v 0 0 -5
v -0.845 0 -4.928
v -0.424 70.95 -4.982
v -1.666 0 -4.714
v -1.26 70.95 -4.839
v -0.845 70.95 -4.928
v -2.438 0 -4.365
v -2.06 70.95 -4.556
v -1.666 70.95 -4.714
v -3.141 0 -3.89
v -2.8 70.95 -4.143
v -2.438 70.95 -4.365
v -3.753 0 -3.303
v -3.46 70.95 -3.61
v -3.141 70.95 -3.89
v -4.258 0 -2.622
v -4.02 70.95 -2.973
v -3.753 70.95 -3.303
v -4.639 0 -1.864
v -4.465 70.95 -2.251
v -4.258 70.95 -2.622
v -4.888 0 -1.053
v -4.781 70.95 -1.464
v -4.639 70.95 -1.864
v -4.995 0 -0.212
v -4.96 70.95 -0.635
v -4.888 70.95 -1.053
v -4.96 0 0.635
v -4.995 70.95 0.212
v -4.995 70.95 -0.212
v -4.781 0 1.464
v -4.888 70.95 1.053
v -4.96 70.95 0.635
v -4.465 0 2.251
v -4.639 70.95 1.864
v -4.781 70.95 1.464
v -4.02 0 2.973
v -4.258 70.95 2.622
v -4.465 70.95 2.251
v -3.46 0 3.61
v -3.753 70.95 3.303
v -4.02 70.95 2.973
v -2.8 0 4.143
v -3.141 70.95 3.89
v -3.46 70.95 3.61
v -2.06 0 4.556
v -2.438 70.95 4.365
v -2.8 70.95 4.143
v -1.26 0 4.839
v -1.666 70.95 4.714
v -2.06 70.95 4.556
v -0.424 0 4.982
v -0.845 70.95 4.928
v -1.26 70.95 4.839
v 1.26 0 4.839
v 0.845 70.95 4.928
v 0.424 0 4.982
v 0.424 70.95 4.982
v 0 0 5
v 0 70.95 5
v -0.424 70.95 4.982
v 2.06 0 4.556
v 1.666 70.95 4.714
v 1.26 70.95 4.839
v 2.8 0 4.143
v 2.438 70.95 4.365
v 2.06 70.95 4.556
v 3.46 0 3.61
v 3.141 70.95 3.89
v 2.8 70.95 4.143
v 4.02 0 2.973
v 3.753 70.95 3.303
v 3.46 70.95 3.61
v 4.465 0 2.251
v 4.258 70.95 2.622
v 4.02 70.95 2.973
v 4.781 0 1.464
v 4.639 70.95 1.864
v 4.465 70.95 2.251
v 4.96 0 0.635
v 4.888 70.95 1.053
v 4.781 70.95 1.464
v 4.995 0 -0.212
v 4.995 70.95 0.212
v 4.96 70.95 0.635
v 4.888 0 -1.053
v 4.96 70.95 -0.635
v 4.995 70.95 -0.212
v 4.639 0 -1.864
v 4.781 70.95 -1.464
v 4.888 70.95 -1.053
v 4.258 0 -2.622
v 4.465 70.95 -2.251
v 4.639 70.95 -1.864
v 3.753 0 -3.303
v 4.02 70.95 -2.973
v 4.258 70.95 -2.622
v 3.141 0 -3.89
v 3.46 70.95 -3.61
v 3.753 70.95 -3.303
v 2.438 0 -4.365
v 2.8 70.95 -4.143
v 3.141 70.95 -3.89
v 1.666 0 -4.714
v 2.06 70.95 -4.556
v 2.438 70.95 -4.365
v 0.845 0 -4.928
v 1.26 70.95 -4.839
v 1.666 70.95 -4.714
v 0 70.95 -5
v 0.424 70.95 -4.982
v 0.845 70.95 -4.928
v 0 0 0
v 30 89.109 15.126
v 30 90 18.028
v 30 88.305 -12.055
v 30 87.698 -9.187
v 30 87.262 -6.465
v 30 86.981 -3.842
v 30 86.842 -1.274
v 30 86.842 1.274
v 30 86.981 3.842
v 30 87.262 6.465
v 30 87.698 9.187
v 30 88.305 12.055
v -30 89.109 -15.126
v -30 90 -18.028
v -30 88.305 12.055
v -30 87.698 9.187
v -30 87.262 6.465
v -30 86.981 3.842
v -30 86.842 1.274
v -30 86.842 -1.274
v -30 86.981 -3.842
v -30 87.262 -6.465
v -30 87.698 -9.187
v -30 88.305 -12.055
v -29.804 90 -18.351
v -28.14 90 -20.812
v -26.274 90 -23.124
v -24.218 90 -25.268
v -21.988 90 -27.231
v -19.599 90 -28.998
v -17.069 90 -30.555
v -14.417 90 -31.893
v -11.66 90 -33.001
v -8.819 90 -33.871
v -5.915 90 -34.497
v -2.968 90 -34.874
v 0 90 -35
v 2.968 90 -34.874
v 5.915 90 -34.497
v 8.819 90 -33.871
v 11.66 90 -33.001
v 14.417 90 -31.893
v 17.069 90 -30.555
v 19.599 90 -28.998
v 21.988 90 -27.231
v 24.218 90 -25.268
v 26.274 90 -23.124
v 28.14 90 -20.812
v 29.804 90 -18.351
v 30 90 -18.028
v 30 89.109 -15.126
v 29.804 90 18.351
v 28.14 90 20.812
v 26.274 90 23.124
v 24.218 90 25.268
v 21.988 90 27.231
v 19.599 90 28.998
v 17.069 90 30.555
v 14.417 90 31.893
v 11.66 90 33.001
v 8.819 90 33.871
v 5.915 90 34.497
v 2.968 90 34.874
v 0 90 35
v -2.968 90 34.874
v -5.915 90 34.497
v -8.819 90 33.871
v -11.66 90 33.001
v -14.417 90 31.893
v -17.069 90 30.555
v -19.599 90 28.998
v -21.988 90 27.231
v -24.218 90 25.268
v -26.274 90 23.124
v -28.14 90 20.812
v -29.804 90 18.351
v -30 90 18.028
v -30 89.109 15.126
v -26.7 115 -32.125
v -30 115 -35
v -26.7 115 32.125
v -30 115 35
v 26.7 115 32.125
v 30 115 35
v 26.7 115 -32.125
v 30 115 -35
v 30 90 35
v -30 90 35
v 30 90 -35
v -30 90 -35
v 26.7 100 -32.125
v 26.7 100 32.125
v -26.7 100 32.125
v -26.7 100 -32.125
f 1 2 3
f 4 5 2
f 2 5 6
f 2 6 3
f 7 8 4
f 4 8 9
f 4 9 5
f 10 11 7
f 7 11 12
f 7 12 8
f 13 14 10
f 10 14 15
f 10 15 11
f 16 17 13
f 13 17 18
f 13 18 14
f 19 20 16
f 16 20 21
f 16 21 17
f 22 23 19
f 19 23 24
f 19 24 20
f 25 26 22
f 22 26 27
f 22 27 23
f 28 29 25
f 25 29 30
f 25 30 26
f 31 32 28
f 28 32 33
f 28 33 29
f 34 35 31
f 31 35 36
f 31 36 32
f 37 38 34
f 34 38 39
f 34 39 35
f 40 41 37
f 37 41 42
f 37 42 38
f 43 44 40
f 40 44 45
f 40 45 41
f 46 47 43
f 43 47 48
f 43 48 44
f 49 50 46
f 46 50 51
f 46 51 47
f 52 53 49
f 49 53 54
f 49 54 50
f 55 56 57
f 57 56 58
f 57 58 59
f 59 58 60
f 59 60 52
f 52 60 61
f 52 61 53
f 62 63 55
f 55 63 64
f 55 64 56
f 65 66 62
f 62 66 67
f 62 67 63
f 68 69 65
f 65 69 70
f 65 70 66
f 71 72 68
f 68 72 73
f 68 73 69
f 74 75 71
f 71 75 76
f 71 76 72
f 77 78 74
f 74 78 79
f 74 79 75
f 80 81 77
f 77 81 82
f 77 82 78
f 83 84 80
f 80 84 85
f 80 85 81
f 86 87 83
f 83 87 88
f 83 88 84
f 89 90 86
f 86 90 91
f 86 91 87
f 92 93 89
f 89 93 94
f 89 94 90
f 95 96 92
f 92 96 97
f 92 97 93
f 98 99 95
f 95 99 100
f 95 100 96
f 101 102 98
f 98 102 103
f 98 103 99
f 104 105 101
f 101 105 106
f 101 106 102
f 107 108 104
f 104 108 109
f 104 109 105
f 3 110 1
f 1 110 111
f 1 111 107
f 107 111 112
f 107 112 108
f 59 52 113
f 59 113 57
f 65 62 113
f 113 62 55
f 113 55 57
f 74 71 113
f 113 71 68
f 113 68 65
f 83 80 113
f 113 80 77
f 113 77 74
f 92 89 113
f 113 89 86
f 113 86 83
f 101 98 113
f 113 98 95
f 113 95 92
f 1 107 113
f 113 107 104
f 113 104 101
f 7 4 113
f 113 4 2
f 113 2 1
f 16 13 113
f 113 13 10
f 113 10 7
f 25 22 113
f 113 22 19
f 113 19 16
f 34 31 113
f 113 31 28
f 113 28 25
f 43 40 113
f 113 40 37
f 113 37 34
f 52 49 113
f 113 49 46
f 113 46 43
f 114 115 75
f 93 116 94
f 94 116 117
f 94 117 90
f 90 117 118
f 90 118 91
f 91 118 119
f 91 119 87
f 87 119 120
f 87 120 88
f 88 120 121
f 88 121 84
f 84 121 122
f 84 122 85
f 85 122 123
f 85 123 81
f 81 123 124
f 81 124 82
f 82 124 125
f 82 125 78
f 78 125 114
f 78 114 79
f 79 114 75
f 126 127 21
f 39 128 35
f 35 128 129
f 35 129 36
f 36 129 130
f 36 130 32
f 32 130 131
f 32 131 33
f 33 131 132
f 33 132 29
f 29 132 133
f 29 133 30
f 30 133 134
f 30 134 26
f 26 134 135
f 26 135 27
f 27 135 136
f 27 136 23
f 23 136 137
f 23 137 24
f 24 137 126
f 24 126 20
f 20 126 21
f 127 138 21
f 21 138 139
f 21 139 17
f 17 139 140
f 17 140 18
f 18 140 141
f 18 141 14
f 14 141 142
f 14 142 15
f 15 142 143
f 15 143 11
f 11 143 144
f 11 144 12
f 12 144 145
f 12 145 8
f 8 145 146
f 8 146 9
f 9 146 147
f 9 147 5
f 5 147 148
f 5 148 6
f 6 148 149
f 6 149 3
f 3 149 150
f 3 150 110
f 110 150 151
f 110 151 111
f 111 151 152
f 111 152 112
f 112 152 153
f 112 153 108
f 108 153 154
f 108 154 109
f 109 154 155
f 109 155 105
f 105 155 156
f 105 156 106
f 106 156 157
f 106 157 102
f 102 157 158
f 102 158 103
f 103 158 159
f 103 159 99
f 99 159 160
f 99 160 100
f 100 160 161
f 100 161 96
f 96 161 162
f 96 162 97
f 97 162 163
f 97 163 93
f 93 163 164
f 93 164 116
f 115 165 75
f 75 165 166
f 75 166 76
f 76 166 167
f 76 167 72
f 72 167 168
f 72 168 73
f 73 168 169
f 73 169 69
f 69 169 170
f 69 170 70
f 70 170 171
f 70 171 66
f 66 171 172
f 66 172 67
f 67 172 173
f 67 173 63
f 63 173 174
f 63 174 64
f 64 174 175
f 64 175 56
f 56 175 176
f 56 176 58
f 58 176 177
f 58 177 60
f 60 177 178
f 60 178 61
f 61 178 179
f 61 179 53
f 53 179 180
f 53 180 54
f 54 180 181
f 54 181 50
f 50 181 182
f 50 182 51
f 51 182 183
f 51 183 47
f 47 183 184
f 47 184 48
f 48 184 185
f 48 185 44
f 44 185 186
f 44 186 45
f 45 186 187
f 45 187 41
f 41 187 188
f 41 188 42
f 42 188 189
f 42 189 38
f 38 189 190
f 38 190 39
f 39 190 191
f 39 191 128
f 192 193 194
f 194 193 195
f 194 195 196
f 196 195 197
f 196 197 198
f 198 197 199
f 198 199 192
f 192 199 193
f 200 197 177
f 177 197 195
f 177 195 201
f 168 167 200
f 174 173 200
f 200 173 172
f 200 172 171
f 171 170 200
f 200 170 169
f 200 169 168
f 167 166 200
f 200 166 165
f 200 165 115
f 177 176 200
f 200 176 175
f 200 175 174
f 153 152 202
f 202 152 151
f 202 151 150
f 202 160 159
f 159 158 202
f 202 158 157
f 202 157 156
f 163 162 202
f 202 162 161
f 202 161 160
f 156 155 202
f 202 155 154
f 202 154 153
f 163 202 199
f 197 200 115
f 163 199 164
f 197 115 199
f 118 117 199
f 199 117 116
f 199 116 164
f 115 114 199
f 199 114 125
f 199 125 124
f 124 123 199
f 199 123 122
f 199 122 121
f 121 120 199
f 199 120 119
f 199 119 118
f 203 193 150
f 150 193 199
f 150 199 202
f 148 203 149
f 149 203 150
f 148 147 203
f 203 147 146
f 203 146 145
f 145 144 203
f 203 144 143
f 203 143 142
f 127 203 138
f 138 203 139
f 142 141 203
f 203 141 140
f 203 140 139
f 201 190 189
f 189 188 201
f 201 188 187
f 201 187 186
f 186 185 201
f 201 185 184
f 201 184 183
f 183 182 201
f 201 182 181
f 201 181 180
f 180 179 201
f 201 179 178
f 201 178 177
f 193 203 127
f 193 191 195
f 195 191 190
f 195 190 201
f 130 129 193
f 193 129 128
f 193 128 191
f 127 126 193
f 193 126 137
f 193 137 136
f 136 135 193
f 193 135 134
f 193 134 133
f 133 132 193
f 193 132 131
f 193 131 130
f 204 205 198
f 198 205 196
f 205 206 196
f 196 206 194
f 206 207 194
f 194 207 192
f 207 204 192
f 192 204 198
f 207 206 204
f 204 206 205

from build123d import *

# Parameters (mm, degrees)
SKETCH1_R               = 5
BOSS_EXTRUDE1_DEPTH     = 90
BOSS_EXTRUDE2_START     = 90
SKETCH2_W               = 60
SKETCH2_H               = 70
BOSS_EXTRUDE2_DEPTH     = 25
CUT_EXTRUDE1_DEPTH      = 126.199840255
CUT_EXTRUDE1_DEPTH_BACK = 126.199840255
SKETCH5_W               = 76.98796528
SKETCH5_H               = 79.307753312
SKETCH5_W_2             = 60
SKETCH5_H_2             = 70
CUT_EXTRUDE2_START      = 115
SKETCH6_W               = 53.399999872
SKETCH6_H               = 64.250000016
CUT_EXTRUDE2_DEPTH      = 15


with BuildPart() as part:
    # Sketch1 → Boss-Extrude1 (new body)
    with BuildSketch(Plane(origin=(0, 0, 0), x_dir=(1, 0, 0), z_dir=(0, 1, 0))):
        with Locations(Location((0, 0, 0), (0, 0, 90))):
            Circle(SKETCH1_R)
    extrude(amount=BOSS_EXTRUDE1_DEPTH)

    # Sketch2 → Boss-Extrude2 (add)
    with BuildSketch(Plane(origin=(0, 0, 0), x_dir=(1, 0, 0), z_dir=(0, 1, 0)).offset(BOSS_EXTRUDE2_START)):
        Rectangle(SKETCH2_W, SKETCH2_H)
    extrude(amount=BOSS_EXTRUDE2_DEPTH)

    # Sketch4 → Revolve1 (revolve)
    with BuildSketch(Plane(origin=(0, 0, 0), x_dir=(0, 0, -1), z_dir=(1, 0, 0)), mode=Mode.PRIVATE) as revolve1_sk:
        Polygon((-35, 90), (-5, 70.95), (-5, 90), align=None)
    revolve(revolve1_sk.sketch.rotate(Axis((0, 90, 0), (0, -1, 0)), 180), axis=Axis((0, 90, 0), (0, -1, 0)))

    # Sketch5 → Cut-Extrude1 (cut, two sides: drawn at the far end of the back side and taken through both)
    with BuildSketch(Plane(origin=(0, 0, 0), x_dir=(1, 0, 0), z_dir=(0, 1, 0)).offset(-CUT_EXTRUDE1_DEPTH_BACK)):
        Rectangle(SKETCH5_W, SKETCH5_H)
        Rectangle(SKETCH5_W_2, SKETCH5_H_2, mode=Mode.SUBTRACT)
    extrude(amount=CUT_EXTRUDE1_DEPTH + CUT_EXTRUDE1_DEPTH_BACK, mode=Mode.SUBTRACT)

    # Sketch6 → Cut-Extrude2 (cut)
    with BuildSketch(Plane(origin=(0, 0, 0), x_dir=(1, 0, 0), z_dir=(0, 1, 0)).offset(CUT_EXTRUDE2_START)):
        Rectangle(SKETCH6_W, SKETCH6_H)
    extrude(amount=-CUT_EXTRUDE2_DEPTH, mode=Mode.SUBTRACT)


solid = part.part
